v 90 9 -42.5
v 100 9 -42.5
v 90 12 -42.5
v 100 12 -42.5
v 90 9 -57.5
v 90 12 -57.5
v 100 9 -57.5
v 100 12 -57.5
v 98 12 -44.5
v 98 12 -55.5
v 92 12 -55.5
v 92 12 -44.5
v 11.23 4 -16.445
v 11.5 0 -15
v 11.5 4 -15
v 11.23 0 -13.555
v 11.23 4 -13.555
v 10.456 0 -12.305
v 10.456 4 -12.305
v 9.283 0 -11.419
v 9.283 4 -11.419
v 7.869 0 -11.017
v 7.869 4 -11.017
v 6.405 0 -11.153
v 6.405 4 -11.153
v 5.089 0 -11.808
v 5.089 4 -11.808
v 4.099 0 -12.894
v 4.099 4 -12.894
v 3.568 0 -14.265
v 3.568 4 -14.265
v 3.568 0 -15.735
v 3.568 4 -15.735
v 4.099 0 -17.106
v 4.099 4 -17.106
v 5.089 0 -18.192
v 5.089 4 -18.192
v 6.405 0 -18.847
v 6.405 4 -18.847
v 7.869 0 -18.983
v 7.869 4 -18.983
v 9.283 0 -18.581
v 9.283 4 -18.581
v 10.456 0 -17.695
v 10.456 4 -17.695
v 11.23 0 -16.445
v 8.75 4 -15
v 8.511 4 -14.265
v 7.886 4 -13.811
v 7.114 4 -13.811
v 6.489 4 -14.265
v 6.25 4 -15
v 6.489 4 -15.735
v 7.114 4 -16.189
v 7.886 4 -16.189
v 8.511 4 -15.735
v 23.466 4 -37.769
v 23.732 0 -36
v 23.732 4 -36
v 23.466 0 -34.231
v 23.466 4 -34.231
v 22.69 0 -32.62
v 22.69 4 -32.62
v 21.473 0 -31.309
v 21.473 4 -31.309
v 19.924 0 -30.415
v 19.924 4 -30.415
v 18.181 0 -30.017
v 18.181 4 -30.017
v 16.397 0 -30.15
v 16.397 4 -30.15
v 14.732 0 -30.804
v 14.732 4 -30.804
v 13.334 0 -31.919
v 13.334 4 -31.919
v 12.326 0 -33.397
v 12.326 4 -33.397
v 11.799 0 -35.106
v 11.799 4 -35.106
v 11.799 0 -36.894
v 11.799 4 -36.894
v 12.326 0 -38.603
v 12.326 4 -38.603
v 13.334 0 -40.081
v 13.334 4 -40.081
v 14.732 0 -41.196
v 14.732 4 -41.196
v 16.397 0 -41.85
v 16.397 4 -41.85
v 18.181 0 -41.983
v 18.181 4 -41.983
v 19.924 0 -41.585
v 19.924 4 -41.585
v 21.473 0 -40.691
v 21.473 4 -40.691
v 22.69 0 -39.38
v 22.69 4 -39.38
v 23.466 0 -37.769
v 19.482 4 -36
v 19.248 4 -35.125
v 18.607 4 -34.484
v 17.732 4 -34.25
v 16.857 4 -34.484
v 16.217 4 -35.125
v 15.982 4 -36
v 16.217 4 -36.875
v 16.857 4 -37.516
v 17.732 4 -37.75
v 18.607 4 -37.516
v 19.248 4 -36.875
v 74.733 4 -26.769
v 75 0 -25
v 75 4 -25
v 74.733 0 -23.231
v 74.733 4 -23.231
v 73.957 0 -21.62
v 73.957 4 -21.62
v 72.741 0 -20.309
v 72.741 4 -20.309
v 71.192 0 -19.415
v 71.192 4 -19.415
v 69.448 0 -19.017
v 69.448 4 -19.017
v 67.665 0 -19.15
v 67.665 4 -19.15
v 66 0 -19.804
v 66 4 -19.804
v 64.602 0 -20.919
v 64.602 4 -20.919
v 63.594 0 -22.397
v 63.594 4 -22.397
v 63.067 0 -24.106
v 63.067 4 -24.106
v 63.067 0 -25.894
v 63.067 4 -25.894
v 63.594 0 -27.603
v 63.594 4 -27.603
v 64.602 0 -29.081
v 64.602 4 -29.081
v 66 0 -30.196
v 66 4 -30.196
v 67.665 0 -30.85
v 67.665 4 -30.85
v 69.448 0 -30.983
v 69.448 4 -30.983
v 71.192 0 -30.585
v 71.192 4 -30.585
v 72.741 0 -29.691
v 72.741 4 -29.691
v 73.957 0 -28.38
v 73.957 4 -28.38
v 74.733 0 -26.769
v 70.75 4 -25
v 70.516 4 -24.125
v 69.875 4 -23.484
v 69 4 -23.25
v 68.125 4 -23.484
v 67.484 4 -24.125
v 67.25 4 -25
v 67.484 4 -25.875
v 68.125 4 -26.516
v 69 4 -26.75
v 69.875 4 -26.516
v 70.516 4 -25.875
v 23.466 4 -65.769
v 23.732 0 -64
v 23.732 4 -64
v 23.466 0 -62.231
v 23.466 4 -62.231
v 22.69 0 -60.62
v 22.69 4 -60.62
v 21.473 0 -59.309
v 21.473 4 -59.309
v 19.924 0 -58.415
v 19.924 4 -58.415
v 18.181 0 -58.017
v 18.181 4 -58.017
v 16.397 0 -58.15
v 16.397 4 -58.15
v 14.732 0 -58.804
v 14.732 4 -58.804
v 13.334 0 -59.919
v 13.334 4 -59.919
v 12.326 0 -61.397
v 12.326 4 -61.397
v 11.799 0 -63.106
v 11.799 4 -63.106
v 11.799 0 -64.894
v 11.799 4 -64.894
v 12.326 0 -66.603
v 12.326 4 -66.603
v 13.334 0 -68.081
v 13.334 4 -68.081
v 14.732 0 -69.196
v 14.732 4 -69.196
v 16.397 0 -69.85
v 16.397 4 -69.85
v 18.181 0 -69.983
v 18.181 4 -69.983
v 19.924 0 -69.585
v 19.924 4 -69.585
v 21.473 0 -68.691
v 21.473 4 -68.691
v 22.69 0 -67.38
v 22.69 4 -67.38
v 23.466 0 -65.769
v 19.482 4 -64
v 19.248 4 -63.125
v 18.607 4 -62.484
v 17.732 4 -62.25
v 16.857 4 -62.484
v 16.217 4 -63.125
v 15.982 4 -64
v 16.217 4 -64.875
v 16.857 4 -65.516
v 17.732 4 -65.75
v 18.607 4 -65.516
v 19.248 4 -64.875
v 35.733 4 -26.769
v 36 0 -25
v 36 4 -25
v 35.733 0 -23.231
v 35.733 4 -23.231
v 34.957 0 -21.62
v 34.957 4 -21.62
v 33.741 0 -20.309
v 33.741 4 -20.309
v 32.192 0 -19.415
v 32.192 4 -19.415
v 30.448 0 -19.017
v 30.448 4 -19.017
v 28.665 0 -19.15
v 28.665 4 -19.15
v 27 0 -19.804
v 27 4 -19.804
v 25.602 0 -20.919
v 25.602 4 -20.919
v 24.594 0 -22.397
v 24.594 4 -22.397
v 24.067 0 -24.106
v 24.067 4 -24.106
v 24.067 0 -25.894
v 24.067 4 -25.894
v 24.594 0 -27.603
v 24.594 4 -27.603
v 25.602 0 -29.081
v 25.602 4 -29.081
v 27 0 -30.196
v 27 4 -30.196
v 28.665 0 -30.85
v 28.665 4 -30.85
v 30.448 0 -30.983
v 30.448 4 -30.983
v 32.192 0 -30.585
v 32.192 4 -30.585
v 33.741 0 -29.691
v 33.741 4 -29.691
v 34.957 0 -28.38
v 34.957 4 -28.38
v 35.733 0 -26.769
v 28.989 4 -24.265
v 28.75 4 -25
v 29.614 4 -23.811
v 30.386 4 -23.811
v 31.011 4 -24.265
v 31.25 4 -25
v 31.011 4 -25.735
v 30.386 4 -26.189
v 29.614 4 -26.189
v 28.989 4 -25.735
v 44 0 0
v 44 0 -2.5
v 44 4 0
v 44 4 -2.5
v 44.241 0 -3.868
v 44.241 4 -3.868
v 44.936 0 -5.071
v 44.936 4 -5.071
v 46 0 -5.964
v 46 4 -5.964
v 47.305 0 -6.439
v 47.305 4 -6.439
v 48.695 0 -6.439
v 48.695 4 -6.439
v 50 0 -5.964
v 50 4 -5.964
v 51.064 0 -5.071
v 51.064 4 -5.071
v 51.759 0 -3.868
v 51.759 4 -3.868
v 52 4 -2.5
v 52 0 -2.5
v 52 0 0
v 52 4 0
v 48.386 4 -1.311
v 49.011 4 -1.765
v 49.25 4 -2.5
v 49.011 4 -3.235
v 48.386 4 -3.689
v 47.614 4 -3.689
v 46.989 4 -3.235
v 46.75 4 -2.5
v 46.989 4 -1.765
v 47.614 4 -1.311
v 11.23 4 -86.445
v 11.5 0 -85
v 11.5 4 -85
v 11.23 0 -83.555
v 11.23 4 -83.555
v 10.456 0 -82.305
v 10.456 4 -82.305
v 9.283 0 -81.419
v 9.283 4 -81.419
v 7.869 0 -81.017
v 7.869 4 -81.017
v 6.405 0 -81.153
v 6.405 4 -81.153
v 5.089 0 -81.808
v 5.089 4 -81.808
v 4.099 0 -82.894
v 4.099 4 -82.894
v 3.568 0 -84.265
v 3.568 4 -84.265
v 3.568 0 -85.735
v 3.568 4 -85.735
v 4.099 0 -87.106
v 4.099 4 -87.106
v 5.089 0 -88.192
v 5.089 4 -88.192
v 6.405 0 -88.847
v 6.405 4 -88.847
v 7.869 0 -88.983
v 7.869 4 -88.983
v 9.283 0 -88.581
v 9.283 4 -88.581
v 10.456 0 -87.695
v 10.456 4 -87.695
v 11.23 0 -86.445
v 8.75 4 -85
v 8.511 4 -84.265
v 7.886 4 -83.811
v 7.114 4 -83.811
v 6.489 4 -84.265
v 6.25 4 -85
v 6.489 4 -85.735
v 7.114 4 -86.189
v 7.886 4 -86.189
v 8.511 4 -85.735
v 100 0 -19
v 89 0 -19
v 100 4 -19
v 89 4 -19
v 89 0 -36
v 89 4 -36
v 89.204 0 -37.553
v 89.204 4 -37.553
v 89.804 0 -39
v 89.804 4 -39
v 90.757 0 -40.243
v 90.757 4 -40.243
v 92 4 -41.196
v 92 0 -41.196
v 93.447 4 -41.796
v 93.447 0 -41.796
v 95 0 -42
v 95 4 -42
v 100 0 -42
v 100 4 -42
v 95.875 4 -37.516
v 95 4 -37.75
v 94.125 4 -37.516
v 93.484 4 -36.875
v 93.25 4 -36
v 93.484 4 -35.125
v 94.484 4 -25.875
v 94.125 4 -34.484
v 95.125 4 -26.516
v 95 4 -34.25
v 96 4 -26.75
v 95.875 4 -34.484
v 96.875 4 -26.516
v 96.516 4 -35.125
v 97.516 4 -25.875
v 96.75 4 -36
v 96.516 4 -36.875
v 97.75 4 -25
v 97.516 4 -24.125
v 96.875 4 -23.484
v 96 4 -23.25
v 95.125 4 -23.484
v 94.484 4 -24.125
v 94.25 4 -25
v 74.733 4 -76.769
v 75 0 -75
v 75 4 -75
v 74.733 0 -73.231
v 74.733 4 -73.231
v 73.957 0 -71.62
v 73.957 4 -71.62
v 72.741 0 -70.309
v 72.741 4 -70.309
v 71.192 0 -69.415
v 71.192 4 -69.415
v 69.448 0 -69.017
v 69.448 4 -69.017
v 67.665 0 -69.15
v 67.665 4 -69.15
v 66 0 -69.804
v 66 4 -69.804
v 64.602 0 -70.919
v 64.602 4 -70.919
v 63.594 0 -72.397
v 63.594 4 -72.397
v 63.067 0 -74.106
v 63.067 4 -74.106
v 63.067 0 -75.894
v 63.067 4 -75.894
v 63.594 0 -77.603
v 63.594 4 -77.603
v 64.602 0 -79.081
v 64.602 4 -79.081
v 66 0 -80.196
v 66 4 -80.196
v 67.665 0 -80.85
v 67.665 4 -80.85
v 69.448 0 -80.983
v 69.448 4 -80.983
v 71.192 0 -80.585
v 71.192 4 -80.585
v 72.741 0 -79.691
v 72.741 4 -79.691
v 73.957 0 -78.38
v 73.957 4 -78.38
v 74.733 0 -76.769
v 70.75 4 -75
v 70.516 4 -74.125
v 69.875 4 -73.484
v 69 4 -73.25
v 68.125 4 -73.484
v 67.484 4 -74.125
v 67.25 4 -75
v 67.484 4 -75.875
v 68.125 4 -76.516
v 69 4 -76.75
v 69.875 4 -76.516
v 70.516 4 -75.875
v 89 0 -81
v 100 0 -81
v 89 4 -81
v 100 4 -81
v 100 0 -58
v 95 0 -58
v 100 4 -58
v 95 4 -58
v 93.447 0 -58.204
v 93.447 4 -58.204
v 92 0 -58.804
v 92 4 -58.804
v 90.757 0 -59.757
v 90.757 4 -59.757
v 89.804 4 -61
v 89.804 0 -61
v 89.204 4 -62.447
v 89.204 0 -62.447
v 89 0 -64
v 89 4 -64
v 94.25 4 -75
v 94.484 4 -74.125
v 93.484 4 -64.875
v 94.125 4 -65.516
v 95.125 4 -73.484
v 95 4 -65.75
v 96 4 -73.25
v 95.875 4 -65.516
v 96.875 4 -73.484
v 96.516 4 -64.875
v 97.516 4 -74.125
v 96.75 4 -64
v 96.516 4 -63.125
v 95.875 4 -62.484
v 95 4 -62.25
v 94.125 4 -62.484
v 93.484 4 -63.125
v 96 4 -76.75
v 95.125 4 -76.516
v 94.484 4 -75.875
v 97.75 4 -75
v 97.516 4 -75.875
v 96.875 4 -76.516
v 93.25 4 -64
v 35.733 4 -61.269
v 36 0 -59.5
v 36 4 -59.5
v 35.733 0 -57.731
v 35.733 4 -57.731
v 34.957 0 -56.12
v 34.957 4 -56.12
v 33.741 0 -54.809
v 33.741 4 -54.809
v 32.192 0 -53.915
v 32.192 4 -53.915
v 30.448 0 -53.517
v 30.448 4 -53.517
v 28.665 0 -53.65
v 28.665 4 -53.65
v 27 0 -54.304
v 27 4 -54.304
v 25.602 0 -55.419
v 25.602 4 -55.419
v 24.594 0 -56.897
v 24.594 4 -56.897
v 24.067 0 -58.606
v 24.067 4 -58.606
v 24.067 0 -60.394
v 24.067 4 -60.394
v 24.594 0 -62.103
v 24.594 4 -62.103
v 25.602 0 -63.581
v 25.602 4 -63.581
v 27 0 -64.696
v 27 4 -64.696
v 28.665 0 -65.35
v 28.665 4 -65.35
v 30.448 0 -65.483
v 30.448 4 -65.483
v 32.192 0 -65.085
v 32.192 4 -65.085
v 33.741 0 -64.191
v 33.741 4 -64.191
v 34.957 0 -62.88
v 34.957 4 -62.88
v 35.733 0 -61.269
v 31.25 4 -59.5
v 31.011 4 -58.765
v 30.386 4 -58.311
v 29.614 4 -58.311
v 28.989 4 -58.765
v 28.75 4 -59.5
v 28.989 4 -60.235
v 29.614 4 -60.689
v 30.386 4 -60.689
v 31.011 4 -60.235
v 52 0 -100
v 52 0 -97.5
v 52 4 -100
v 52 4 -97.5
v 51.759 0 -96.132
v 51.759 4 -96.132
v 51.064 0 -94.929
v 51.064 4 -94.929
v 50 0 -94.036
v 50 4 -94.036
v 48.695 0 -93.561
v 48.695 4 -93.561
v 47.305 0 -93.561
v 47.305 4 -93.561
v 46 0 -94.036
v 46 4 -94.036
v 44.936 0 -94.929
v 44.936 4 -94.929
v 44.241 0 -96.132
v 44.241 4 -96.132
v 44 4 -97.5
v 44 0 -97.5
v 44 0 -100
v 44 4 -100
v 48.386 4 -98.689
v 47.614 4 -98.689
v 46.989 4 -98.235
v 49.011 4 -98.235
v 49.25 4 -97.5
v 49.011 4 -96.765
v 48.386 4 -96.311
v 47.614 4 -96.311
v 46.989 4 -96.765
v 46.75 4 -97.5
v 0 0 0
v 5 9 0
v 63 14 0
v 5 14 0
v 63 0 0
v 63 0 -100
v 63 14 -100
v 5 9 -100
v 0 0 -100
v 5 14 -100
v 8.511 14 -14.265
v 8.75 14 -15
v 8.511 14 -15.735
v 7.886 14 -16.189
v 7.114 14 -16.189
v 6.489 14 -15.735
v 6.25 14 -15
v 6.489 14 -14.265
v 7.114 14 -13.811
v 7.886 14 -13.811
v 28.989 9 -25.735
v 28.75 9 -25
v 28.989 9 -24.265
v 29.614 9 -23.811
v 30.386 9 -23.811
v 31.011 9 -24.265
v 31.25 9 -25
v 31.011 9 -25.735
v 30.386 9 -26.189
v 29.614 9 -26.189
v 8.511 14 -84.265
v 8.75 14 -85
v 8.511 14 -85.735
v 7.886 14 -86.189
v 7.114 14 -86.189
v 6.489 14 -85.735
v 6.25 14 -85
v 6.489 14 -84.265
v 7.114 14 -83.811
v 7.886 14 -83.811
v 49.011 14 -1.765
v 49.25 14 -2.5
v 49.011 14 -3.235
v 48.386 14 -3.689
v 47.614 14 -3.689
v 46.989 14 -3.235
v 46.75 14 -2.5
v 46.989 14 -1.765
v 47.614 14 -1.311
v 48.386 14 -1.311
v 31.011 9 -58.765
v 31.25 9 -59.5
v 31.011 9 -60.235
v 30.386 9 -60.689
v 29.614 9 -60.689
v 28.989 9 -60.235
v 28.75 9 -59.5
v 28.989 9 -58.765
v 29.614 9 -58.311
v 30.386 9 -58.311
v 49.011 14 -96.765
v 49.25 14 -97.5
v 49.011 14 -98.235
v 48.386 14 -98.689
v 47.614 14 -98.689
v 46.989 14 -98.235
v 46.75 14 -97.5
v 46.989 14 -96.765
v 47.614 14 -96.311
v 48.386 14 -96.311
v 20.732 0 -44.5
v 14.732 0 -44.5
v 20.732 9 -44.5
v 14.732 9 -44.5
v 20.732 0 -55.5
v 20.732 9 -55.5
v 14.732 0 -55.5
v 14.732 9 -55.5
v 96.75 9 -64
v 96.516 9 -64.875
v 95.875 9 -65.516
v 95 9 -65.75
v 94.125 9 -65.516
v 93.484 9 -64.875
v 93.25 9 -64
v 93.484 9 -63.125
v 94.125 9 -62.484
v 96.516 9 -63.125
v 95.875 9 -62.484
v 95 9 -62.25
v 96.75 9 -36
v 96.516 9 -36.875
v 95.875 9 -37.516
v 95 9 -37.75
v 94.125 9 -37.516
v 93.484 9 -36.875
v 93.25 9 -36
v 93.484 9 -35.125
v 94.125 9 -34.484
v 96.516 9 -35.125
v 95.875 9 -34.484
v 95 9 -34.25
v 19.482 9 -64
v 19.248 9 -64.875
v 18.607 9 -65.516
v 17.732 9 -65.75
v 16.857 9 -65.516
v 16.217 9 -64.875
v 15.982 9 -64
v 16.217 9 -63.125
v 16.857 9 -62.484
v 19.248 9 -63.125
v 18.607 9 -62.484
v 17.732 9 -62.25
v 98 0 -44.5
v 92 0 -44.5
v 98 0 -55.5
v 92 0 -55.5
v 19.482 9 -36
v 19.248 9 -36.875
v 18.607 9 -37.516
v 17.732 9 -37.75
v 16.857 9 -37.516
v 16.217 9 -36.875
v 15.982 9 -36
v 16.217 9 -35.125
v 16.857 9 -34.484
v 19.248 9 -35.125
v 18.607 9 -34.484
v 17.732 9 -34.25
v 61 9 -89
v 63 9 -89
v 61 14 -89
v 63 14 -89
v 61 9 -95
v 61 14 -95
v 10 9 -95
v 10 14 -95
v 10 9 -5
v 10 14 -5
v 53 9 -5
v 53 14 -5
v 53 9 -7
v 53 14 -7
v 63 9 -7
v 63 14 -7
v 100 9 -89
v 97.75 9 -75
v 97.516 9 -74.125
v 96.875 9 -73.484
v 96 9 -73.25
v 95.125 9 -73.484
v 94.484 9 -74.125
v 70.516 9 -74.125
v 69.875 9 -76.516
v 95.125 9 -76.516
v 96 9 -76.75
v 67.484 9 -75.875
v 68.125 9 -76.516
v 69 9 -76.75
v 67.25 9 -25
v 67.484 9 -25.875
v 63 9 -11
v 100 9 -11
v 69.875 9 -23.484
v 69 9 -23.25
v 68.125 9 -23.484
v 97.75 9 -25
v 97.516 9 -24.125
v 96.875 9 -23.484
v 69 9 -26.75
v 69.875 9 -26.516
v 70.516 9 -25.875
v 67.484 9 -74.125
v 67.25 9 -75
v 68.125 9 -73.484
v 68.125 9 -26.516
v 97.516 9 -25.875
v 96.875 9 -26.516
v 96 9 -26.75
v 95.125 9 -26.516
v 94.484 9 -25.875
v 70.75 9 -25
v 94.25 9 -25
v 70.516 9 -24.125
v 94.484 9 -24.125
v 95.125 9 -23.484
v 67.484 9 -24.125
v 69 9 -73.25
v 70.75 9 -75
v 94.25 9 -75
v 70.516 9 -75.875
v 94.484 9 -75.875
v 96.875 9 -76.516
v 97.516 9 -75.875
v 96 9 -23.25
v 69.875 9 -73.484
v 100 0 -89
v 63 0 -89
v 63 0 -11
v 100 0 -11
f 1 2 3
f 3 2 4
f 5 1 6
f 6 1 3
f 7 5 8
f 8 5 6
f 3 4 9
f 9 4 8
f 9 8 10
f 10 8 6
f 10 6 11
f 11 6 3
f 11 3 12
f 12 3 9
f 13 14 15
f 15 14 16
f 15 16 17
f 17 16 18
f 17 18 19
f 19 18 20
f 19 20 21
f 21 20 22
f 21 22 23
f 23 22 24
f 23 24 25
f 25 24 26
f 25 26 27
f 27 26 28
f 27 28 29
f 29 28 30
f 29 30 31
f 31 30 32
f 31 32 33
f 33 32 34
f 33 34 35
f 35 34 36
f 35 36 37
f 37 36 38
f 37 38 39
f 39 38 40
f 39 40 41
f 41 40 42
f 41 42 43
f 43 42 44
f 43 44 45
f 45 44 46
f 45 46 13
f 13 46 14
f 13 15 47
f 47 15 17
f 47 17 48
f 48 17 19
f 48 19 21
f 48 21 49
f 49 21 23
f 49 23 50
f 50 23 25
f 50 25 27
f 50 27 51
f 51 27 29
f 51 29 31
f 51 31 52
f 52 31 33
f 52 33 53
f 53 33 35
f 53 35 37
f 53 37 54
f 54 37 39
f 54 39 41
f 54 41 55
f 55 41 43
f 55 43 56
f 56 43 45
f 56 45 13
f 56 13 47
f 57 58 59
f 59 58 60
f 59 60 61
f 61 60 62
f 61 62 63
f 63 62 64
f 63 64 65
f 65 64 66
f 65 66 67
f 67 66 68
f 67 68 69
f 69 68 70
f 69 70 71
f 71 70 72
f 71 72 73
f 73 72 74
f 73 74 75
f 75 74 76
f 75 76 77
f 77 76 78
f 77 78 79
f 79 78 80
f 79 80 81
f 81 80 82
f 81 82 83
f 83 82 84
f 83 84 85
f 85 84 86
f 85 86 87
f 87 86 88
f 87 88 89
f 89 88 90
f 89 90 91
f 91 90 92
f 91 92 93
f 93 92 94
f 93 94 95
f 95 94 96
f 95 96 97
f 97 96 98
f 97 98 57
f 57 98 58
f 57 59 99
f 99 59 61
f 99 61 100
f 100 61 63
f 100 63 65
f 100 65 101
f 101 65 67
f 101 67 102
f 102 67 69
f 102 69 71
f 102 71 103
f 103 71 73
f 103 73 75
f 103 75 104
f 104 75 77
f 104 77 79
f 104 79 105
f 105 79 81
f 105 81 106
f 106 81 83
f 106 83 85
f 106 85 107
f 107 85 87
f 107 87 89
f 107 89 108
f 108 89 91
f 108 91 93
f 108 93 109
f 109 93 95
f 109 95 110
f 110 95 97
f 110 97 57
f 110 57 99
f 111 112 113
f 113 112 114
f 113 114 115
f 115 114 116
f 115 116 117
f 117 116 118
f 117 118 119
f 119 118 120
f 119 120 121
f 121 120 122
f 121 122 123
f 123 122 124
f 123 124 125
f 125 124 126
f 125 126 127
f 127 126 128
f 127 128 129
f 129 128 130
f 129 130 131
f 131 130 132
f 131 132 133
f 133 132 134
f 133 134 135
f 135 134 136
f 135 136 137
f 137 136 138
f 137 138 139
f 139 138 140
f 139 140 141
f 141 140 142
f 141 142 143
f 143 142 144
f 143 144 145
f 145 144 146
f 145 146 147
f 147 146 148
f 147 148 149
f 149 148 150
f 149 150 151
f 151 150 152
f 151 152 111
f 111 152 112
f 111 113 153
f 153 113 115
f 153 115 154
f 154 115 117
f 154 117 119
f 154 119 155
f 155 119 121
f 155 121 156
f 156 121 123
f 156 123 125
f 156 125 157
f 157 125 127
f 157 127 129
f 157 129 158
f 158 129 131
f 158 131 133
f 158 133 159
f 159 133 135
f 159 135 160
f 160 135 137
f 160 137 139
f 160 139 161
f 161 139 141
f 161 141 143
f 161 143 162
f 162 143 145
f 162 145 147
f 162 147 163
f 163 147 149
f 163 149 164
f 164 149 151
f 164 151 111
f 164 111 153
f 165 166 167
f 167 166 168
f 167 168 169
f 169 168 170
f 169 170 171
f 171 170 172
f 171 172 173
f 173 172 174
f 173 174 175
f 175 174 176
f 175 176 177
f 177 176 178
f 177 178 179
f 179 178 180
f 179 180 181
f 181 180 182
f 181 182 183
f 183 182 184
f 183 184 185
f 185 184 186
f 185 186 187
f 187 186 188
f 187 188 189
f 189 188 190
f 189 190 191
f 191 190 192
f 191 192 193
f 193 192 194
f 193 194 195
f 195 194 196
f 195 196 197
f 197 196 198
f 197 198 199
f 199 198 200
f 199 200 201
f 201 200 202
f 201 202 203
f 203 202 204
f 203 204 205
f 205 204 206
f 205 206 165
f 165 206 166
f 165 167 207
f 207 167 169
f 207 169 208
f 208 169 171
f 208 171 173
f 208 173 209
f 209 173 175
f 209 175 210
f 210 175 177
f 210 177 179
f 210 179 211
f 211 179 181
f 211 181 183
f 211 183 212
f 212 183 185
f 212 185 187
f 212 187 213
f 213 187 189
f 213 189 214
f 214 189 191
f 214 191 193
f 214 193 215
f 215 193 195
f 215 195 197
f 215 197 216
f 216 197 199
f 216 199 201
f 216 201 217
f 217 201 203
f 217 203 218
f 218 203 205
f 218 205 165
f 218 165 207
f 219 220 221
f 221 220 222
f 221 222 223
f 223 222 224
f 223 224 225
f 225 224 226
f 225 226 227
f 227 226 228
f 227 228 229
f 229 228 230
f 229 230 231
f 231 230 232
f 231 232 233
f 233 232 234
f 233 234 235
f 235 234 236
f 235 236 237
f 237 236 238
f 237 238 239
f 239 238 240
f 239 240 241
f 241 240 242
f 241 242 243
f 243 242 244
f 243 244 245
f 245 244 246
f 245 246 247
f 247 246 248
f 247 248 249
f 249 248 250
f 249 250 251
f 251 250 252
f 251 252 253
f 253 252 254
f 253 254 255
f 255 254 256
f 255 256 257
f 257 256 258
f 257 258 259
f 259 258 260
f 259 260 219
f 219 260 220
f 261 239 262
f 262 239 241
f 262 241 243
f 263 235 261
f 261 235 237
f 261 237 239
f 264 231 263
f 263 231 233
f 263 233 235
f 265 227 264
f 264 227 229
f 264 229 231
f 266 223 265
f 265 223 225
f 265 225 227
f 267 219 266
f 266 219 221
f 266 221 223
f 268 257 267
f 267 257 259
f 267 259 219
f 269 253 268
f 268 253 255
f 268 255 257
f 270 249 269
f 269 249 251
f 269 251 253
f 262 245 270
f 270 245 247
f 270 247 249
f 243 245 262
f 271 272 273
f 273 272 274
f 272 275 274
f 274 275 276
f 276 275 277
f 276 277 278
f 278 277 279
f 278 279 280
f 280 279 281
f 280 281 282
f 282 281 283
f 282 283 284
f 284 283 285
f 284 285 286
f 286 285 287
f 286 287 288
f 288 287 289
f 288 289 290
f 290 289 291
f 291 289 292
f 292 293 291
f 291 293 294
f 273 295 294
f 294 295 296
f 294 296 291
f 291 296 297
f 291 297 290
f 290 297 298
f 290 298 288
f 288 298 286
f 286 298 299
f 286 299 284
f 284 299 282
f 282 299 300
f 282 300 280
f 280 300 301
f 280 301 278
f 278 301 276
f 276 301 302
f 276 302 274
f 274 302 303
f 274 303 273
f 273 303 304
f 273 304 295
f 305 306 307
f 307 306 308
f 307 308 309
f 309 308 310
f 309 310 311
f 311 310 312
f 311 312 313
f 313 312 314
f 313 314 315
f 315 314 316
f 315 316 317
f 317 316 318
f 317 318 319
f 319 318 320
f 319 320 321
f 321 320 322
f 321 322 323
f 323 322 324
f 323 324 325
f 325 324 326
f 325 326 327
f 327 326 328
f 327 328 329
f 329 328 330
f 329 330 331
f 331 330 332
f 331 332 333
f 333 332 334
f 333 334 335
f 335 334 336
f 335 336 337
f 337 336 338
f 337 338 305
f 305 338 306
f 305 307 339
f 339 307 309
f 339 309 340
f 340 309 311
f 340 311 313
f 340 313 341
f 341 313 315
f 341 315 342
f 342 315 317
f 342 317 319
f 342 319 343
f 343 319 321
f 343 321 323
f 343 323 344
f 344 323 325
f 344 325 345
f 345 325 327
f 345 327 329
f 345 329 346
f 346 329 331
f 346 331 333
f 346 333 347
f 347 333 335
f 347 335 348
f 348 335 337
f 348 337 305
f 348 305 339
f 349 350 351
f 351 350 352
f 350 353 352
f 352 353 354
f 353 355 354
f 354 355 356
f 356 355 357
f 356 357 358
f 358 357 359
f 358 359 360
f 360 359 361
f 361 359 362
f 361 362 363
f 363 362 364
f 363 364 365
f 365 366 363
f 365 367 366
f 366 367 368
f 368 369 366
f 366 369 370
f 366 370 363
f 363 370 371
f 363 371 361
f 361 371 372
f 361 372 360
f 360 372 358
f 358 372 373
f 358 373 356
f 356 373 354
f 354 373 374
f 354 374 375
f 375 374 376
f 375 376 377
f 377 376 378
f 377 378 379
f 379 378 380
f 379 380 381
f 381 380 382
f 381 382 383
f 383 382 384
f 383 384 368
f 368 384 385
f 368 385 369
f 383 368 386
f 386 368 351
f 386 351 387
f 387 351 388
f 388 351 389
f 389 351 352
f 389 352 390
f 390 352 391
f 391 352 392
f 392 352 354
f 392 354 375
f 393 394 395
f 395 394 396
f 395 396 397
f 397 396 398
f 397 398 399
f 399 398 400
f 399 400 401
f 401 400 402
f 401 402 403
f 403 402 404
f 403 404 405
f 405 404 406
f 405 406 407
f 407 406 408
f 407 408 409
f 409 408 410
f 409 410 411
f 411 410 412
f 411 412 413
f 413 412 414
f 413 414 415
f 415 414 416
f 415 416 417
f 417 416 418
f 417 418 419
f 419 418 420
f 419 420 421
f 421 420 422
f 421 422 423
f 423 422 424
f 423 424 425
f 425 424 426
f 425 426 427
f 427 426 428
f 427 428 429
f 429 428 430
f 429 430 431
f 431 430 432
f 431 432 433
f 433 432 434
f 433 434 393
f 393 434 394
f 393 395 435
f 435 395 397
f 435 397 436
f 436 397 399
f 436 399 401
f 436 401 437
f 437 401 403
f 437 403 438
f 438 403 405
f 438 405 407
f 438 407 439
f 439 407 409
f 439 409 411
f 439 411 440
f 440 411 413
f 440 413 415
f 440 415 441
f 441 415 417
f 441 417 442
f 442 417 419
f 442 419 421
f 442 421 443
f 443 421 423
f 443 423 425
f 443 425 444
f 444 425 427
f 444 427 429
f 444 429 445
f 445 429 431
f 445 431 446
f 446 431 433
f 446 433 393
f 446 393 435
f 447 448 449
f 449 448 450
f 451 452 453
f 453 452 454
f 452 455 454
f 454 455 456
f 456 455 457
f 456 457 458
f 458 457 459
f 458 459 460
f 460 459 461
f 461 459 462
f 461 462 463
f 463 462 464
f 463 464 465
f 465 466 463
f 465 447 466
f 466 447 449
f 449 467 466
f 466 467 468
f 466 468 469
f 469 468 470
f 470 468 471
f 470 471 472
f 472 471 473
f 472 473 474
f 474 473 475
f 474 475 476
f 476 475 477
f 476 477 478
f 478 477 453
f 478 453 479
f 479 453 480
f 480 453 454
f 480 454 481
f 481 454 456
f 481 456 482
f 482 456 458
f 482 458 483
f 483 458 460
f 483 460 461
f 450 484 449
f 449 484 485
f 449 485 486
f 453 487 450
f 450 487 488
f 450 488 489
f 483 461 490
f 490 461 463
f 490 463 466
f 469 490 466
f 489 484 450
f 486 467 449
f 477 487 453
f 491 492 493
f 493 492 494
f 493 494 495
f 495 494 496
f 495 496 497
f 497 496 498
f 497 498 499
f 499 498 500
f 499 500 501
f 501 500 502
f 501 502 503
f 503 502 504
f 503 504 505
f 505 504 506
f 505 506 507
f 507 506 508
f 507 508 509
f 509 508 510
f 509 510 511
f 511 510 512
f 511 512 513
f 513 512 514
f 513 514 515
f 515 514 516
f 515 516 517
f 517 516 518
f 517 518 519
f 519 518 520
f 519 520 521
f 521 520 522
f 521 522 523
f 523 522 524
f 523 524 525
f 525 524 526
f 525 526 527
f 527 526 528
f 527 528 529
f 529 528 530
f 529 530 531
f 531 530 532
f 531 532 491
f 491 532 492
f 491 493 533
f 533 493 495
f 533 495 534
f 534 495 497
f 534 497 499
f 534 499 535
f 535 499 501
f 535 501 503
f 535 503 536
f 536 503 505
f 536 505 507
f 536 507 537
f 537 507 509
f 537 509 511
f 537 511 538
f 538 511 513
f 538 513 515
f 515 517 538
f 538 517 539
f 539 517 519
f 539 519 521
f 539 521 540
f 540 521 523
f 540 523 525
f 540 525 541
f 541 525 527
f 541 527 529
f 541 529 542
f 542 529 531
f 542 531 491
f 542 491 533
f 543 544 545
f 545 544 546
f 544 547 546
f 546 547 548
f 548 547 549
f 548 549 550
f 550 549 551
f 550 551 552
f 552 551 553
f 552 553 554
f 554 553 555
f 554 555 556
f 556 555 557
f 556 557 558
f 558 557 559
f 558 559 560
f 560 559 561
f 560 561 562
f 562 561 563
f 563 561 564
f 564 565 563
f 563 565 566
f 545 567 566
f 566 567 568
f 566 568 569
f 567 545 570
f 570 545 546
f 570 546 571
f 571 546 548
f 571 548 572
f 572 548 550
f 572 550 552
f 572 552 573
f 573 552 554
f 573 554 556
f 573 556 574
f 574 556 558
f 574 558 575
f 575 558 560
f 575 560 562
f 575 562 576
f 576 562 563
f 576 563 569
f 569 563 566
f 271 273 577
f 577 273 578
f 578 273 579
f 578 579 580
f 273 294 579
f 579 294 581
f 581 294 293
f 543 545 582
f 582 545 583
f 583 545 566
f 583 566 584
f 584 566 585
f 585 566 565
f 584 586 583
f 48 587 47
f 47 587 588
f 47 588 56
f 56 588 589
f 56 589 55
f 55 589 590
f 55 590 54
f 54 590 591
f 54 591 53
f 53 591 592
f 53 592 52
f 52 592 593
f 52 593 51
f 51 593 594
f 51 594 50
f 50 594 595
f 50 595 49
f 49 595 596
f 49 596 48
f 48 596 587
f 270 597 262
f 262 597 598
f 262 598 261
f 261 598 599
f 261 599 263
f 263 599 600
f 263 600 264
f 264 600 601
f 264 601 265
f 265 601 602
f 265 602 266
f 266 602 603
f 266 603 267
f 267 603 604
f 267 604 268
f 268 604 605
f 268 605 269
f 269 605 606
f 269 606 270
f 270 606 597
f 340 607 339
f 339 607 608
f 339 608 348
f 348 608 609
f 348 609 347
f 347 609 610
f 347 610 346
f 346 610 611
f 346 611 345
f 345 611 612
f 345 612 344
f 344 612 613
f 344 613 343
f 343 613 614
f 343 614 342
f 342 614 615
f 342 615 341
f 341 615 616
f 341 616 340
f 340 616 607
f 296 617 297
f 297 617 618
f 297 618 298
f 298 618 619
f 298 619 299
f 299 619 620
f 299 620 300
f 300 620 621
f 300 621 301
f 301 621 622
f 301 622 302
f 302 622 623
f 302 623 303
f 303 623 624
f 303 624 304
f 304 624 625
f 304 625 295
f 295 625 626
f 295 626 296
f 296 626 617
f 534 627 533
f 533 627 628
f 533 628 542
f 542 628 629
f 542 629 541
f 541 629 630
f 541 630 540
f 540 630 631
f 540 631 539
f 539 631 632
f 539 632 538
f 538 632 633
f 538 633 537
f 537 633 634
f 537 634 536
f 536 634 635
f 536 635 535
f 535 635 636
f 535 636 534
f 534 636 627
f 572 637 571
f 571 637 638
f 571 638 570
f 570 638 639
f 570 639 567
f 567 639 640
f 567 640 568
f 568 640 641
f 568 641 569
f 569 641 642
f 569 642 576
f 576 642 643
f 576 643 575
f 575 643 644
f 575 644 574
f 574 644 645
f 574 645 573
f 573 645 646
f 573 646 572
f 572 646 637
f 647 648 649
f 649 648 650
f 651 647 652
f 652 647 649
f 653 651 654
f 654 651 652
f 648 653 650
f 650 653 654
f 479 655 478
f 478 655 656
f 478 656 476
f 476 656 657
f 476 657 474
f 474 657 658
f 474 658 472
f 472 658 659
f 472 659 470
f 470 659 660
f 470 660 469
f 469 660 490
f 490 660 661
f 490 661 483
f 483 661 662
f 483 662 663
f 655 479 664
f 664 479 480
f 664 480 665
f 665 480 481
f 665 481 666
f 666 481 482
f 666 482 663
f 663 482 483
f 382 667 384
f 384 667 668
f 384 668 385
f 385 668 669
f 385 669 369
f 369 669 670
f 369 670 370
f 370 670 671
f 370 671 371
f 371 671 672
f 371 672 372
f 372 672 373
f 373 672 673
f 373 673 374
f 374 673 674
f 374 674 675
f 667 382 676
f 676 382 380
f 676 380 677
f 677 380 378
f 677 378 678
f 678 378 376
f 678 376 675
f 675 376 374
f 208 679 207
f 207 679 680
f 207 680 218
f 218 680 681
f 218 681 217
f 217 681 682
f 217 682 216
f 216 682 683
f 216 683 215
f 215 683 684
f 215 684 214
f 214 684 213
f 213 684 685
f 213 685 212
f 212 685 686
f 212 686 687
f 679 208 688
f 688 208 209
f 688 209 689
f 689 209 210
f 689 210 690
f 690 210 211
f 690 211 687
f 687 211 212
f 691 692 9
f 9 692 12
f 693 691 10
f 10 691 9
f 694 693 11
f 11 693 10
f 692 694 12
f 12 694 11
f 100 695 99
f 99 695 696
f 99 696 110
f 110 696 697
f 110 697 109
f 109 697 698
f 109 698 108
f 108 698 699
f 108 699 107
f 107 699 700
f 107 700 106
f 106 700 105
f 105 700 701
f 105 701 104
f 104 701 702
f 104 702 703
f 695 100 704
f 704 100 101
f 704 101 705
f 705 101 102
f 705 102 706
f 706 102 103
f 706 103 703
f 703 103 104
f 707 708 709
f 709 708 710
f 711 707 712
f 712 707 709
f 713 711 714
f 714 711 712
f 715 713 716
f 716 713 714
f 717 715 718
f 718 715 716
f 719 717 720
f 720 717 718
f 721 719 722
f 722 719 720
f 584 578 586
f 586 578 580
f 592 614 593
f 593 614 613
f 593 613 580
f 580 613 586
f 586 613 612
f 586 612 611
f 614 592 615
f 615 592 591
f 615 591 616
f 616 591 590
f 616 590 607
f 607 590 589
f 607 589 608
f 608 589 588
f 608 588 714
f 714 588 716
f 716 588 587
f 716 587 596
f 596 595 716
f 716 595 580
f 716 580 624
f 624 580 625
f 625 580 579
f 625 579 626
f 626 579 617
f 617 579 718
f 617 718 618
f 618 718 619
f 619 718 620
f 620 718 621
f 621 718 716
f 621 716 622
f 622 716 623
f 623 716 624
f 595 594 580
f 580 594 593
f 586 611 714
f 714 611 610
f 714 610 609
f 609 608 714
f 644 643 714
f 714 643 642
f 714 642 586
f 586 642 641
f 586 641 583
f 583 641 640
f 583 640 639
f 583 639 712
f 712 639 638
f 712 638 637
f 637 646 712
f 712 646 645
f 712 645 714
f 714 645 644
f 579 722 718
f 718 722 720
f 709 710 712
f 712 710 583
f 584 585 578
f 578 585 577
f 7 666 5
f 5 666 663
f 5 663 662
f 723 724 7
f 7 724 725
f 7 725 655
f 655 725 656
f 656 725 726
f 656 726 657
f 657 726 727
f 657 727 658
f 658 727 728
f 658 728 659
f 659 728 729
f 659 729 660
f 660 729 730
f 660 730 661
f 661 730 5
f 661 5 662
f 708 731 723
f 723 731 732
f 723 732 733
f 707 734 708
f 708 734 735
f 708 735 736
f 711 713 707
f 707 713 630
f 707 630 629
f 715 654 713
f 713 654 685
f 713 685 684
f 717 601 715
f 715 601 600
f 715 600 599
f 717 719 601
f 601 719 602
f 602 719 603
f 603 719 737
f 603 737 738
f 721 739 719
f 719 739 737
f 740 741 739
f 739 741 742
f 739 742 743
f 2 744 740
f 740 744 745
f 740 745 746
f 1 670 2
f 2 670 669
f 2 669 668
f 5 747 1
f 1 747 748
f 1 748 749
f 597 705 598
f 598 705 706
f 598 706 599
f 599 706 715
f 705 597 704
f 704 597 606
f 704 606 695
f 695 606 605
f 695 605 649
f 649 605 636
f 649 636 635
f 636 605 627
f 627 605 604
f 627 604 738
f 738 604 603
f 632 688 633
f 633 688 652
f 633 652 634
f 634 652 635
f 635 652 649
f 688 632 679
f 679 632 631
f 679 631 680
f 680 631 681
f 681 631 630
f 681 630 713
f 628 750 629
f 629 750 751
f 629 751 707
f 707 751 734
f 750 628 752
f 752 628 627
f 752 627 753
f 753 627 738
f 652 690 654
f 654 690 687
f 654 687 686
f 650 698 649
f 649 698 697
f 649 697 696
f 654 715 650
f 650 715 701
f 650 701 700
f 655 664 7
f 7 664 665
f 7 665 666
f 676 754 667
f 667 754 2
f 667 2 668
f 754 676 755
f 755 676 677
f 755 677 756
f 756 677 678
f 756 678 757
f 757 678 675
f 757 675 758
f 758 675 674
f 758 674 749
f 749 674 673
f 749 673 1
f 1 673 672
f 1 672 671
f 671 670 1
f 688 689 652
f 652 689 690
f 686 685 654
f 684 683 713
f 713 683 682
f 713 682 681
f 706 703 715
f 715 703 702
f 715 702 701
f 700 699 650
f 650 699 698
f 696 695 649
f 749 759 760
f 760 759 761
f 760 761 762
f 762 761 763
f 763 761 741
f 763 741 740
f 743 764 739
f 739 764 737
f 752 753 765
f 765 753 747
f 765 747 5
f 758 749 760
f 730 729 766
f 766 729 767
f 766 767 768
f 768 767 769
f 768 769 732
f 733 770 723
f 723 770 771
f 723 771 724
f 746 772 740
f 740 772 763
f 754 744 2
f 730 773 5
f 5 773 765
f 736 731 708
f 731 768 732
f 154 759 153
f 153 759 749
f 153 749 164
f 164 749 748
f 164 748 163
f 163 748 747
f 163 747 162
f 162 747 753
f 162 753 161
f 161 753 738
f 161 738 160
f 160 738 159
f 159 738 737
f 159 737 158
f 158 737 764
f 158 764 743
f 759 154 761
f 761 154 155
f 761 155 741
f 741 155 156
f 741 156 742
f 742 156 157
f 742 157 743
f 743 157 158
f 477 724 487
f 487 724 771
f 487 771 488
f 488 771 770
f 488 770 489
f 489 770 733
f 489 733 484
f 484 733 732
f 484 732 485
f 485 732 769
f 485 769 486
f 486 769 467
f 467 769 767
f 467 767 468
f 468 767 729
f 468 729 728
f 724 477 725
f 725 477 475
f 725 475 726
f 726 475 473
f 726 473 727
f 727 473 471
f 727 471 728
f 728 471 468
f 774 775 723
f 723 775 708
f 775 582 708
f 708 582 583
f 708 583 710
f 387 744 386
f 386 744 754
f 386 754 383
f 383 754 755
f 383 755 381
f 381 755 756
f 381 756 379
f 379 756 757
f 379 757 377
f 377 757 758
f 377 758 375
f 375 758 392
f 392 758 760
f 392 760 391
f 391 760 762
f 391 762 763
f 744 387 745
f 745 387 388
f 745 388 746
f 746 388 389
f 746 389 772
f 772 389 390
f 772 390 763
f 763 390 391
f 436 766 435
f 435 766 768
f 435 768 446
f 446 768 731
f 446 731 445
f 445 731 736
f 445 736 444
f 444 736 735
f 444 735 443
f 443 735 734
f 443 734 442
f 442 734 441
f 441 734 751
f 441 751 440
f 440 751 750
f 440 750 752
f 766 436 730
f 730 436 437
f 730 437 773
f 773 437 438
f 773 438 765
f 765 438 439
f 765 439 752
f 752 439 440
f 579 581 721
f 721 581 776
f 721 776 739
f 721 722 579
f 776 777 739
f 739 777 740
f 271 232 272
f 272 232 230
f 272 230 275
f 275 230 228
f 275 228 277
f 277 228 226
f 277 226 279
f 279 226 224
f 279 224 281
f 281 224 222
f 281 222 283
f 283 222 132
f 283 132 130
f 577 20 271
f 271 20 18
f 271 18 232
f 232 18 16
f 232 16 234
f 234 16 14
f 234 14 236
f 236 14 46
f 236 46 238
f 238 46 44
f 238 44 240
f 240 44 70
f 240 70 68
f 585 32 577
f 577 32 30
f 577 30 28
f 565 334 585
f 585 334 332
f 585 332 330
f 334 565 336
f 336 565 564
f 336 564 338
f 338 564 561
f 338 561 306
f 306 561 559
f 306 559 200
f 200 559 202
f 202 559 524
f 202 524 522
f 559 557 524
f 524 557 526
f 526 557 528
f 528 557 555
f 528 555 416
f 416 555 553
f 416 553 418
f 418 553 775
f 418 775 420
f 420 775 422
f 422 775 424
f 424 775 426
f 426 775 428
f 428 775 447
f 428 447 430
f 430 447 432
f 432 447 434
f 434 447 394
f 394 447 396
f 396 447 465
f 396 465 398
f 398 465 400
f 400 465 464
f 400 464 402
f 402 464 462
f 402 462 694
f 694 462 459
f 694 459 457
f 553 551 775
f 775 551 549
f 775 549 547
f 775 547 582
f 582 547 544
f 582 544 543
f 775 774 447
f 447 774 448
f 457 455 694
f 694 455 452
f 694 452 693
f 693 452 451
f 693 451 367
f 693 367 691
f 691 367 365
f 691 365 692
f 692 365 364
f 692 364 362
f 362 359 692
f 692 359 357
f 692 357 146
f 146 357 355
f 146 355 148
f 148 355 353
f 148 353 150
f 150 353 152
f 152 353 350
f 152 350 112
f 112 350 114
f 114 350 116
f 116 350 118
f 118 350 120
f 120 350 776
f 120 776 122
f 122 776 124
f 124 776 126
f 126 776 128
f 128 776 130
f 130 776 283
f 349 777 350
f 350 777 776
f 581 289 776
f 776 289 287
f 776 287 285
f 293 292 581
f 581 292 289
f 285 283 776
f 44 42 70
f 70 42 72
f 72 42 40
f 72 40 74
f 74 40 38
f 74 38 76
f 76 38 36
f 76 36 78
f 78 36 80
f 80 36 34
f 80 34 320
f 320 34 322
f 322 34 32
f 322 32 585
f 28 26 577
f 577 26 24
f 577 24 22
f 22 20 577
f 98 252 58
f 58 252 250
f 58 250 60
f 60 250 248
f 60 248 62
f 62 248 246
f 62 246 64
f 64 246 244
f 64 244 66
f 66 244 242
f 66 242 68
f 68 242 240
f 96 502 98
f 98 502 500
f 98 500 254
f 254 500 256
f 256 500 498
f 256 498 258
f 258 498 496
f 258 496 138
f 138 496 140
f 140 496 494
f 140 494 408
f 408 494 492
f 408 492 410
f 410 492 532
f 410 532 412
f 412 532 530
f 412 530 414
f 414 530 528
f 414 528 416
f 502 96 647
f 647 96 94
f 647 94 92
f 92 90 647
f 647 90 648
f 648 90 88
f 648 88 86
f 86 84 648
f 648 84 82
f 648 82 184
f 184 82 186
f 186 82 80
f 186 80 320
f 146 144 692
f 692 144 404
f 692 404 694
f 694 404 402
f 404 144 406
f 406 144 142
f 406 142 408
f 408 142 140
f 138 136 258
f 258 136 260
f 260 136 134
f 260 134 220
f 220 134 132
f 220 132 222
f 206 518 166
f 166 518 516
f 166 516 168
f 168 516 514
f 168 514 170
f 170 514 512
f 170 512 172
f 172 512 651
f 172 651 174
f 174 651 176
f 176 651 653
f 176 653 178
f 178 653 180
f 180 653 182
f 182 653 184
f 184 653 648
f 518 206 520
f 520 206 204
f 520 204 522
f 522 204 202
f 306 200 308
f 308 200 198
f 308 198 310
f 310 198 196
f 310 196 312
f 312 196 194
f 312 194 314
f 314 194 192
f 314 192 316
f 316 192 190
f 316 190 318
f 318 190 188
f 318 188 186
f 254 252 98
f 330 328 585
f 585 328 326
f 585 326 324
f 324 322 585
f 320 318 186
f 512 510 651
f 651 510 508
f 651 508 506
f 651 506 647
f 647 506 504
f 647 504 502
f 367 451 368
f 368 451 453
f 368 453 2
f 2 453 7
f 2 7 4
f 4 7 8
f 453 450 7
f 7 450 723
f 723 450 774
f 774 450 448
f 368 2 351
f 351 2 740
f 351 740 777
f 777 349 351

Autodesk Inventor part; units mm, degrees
ref_plane "YZ Plane" through (0, 0, 0) normal (1, 0, 0) x (0, 1, 0)
ref_plane "XZ Plane" through (0, 0, 0) normal (0, 1, 0) x (-1, 0, 0)
ref_plane "XY Plane" through (0, 0, 0) normal (0, 0, 1) x (1, 0, 0)
sketch "Sketch1" plane through (0, 0, 0) normal (0, 1, 0) x (-1, 0, 0)
  line L0 (0, 0) -> (-100, 0)
  line L1 (-100, 0) -> (-100, -100)
  line L2 (-100, -100) -> (0, -100)
  line L3 (0, -100) -> (0, 0)
  dimension "d0" = 100
  dimension "d1" = 100
extrude "base" add sketch "Sketch1" along normal blind 9
sketch "Sketch2" plane through (0, 9, 0) normal (0, 1, 0) x (1, 0, 0)
  circle A0 centre (96, 25) radius 1.75
  line L0 (100, 0) -> (100, 100) projected
  circle A1 centre (69, 25) radius 1.75
  line L1 (0, 0) -> (100, 0) projected
  line L2 (100, 50) -> (95, 50)
  circle A2 centre (96, 75) radius 1.75
  circle A3 centre (69, 75) radius 1.75
  line L3 (63, 0) -> (63, 100)
  line L4 (100, 100) -> (0, 100) projected
  line L5 (100, 25) -> (100, 11)
  line L6 (100, 11) -> (63, 11)
  line L7 (100, 89) -> (63, 89)
  circle A4 centre (82, 25) radius 17.5
  point P0 (63, 89)
  dimension "d6" = 4
  dimension "d7" = 3.5
  dimension "d9" = 3.5
  dimension "d10" = 27
  dimension "d11" = 25
  dimension "d13" = 37
  dimension "d14" = 14
  dimension "d17" = 35
extrude "wheel space" cut sketch "Sketch2" against normal through all contours A0 | L1 L3 L6 A4 L0 | A4 L6 | L3 L4 L0 L7 | A1 | A2 | A3 picked at (84.4264, 10.3619)
sketch "Sketch3" plane through (0, 0, 0) normal (0, 0, 1) x (1, 0, 0)
  line L0 (63, 9) -> (0, 9) projected
  line L1 (0, 0) -> (0, 9) projected
  line L2 (63, 0) -> (0, 0) projected
  line L3 (5, 9) -> (0, 0)
  dimension "d18" = 5
extrude "ramp" cut sketch "Sketch3" against normal through all
sketch "Sketch4" plane through (0, 9, 0) normal (0, 1, 0) x (1, 0, 0)
  circle A0 centre (69, 75) radius 1.75 projected
  circle A1 centre (96, 25) radius 1.75 projected
  circle A2 centre (96, 75) radius 1.75 projected
  circle A3 centre (69, 25) radius 1.75 projected
  line L0 (5, 100) -> (5, 0) projected
  line L1 (5, 0) -> (63, 0) projected
  line L2 (63, 0) -> (63, 11) projected
  line L3 (63, 11) -> (100, 11) projected
  line L4 (100, 11) -> (100, 89) projected
  line L5 (100, 89) -> (63, 89) projected
  line L6 (63, 89) -> (63, 100) projected
  line L7 (63, 100) -> (5, 100) projected
  line L8 (63, 100) -> (63, 89) projected
  line L9 (61, 95) -> (10, 95)
  line L10 (10, 95) -> (10, 5)
  line L11 (10, 5) -> (63, 5)
  line L12 (63, 11) -> (63, 0) projected
  line L13 (63, 89) -> (61, 89)
  line L14 (61, 89) -> (61, 95)
  line L15 (63, 5) -> (53, 5)
  line L16 (53, 5) -> (53, 7)
  line L17 (53, 7) -> (63, 7)
  line L18 (63, 7) -> (63, 5)
  point P0 (0, 0)
  point P1 (63, 95)
  dimension "d21" = 5
  dimension "d22" = 5
  dimension "d23" = 5
  dimension "d64" = 2
  dimension "d72" = 10
  dimension "d73" = 2
extrude "walls" add sketch "Sketch4" along normal blind 5 contours L7 L6 L13 L14 L9 L10 L11 L2 L1 L0 | L11 L16 L17 L2
sketch "Sketch5" plane through (0, 9, 0) normal (0, 1, 0) x (1, 0, 0)
  line L0 (22.7322, 84.5) -> (12.7322, 84.5)
  line L1 (12.7322, 84.5) -> (12.7322, 44.5)
  line L2 (12.7322, 44.5) -> (22.7322, 44.5)
  line L3 (22.7322, 44.5) -> (22.7322, 84.5)
  line L4 (14.7322, 44.5) -> (20.7322, 44.5)
  line L5 (20.7322, 44.5) -> (20.7322, 55.5)
  line L6 (20.7322, 55.5) -> (14.7322, 55.5)
  line L7 (14.7322, 55.5) -> (14.7322, 44.5)
  line L8 (14.7322, 44.5) -> (20.7322, 55.5) construction
  line L9 (20.7322, 44.5) -> (14.7322, 55.5) construction
  line L10 (10, 5) -> (10, 95) projected
  circle A0 centre (17.7322, 64) radius 1.75
  line L11 (100, 84.5) -> (90, 84.5)
  line L12 (90, 84.5) -> (90, 44.5)
  line L13 (90, 44.5) -> (100, 44.5)
  line L14 (100, 44.5) -> (100, 84.5)
  line L15 (92, 44.5) -> (98, 44.5)
  line L16 (98, 44.5) -> (98, 55.5)
  line L17 (98, 55.5) -> (92, 55.5)
  line L18 (92, 55.5) -> (92, 44.5)
  line L19 (92, 44.5) -> (98, 55.5) construction
  line L20 (98, 44.5) -> (92, 55.5) construction
  circle A1 centre (95, 64) radius 1.75
  circle A2 centre (96, 75) radius 1.75 projected
  line L21 (100, 11) -> (100, 89) projected
  circle A3 centre (95, 36) radius 1.75
  circle A4 centre (17.7322, 36) radius 1.75
  line L22 (100, 57.5) -> (90, 57.5)
  line L23 (90, 57.5) -> (90, 42.5)
  line L24 (90, 42.5) -> (100, 42.5)
  line L25 (100, 42.5) -> (100, 57.5)
  line L26 (100, 57.5) -> (90, 42.5) construction
  line L27 (90, 57.5) -> (100, 42.5) construction
  point P0 (0, 0)
  point P1 (17.7322, 50)
  point P2 (10, 50)
  point P3 (17.7322, 50)
  point P4 (95, 50)
  point P5 (95, 50)
  point P6 (95, 50)
  point P7 (17.7322, 50)
  point P8 (92, 44.5)
  point P9 (98, 44.5)
  point P10 (95, 84.5)
  dimension "d26" = 10
  dimension "d27" = 40
  dimension "d28" = 5.5
  dimension "d29" = 6
  dimension "d30" = 11
  dimension "d31" = 3.5
  dimension "d32" = 14
  dimension "d33" = 10
  dimension "d34" = 40
  dimension "d35" = 5.5
  dimension "d36" = 6
  dimension "d37" = 11
  dimension "d38" = 3.5
  dimension "d39" = 14
  dimension "d60" = 3.5
  dimension "d61" = 14
  dimension "d62" = 3.5
  dimension "d63" = 14
  dimension "d65" = 10
  dimension "d66" = 15
extrude "ir sensor" cut sketch "Sketch5" against normal through all contours L2 L7 L6 L5 | A0 | L13 L18 L17 L16 | A1 | A3 | A4
sketch "Sketch8" plane through (0, 14, 0) normal (0, 1, 0) x (1, 0, 0)
  line L0 (61, 89) -> (63, 89) projected
  line L1 (63, 89) -> (63, 100) projected
  line L2 (63, 100) -> (5, 100) projected
  line L3 (5, 100) -> (5, 0) projected
  line L4 (5, 0) -> (63, 0) projected
  line L5 (63, 0) -> (63, 7) projected
  line L6 (63, 7) -> (53, 7) projected
  line L7 (53, 7) -> (53, 5) projected
  line L8 (53, 5) -> (10, 5) projected
  line L9 (10, 5) -> (10, 95) projected
  line L10 (10, 95) -> (61, 95) projected
  line L11 (61, 95) -> (61, 89) projected
  circle A0 centre (7.5, 85) radius 1.25
  circle A1 centre (7.5, 15) radius 1.25
  circle A2 centre (48, 2.5) radius 1.25
  circle A3 centre (48, 97.5) radius 1.25
  point P0 (0, 0)
  dimension "d82" = 2.5
  dimension "d84" = 2.5
  dimension "d85" = 2.5
  dimension "d87" = 2.5
  dimension "d88" = 15
  dimension "d89" = 15
  dimension "d90" = 15
  dimension "d91" = 2.5
  dimension "d92" = 2.5
  dimension "d93" = 2.5
sketch "Sketch6" plane through (0, 9, 0) normal (0, 1, 0) x (1, 0, 0)
  line L0 (20.7322, 44.5) -> (14.7322, 44.5) projected
  circle A0 centre (17.7322, 64) radius 1.75 projected
  line L1 (53, 5) -> (10, 5) projected
  line L2 (10, 95) -> (61, 95) projected
  circle A1 centre (69, 25) radius 1.75 projected
  circle A2 centre (96, 25) radius 1.75 projected
  circle A3 centre (69, 25) radius 1.75 projected
  circle A4 centre (96, 25) radius 1.75 projected
  line L3 (69, 25) -> (96, 25)
  circle A5 centre (30, 25) radius 1.25
  line L4 (10, 5) -> (10, 95) projected
  circle A6 centre (30, 59.5) radius 1.25
  circle A7 centre (48, 97.5) radius 1.25 projected
  circle A8 centre (48, 2.5) radius 1.25 projected
  circle A9 centre (7.5, 85) radius 1.25 projected
  circle A10 centre (7.5, 15) radius 1.25 projected
  point P0 (0, 0)
  point P1 (63, 5)
  point P2 (63, 95)
  dimension "d75" = 2.5
  dimension "d76" = 20
  dimension "d77" = 20
  dimension "d79" = 2.5
  dimension "d80" = 34.5
extrude "mount holes" cut sketch "Sketch6" against normal through all both and the other way through all contours A5 | A6 | A7 | A8 | A9 | A10
sketch "Sketch7" plane through (0, 0, 0) normal (0, -1, 0) x (1, 0, 0)
  line L0 (92, -44.5) -> (98, -44.5) projected
  line L1 (98, -44.5) -> (98, -55.5) projected
  line L2 (98, -55.5) -> (92, -55.5) projected
  line L3 (92, -55.5) -> (92, -44.5) projected
  circle A0 centre (17.7322, -64) radius 1.75 projected
  circle A1 centre (95, -64) radius 1.75 projected
  line L4 (20.7322, -44.5) -> (20.7322, -55.5) projected
  line L5 (20.7322, -55.5) -> (14.7322, -55.5) projected
  line L6 (14.7322, -55.5) -> (14.7322, -44.5) projected
  line L7 (14.7322, -44.5) -> (20.7322, -44.5) projected
  circle A2 centre (69, -75) radius 1.75 projected
  circle A3 centre (96, -25) radius 1.75 projected
  circle A4 centre (96, -75) radius 1.75 projected
  circle A5 centre (69, -25) radius 1.75 projected
  line L8 (63, -100) -> (63, -89) projected
  line L9 (63, -89) -> (100, -89) projected
  line L10 (100, -11) -> (100, -89) projected
  line L11 (100, -11) -> (63, -11) projected
  line L12 (63, -11) -> (63, 0) projected
  line L13 (0, 0) -> (63, 0) projected
  line L14 (0, -100) -> (0, 0) projected
  line L15 (63, -100) -> (0, -100) projected
  circle A6 centre (69, -75) radius 6
  circle A7 centre (69, -25) radius 1.75 projected
  circle A8 centre (69, -25) radius 6
  circle A9 centre (96, -25) radius 1.75 projected
  circle A10 centre (17.7322, -64) radius 6
  circle A11 centre (95, -36) radius 1.75 projected
  arc A12 (89, -36) -> (95, -42) centre (95, -36) ccw
  line L16 (98, -31) -> (98.3166, -31)
  line L17 (100, -11) -> (100, -89) projected
  line L18 (96, -19) -> (100, -19)
  line L19 (100, -50) -> (98.3161, -50)
  line L20 (95, -42) -> (100, -42)
  circle A13 centre (17.7322, -36) radius 1.75 projected
  circle A14 centre (17.7322, -36) radius 6
  line L21 (92, -19) -> (96, -19)
  line L22 (89, -36) -> (89, -19)
  line L23 (89, -19) -> (92, -19)
  circle A15 centre (96, -75) radius 1.75
  circle A16 centre (96, -75) radius 1.75
  circle A17 centre (95, -64) radius 1.75
  arc A18 (95, -58) -> (89, -64) centre (95, -64) ccw
  line L24 (98, -69) -> (98.3166, -69)
  line L25 (96, -81) -> (100, -81)
  line L26 (95, -58) -> (100, -58)
  line L27 (92, -81) -> (96, -81)
  line L28 (89, -64) -> (89, -81)
  line L29 (89, -81) -> (92, -81)
  circle A19 centre (30, -59.5) radius 1.25 projected
  circle A20 centre (30, -25) radius 1.25 projected
  circle A21 centre (30, -59.5) radius 6
  circle A22 centre (30, -25) radius 6
  circle A23 centre (48, -97.5) radius 1.25 projected
  circle A24 centre (48, -2.5) radius 1.25 projected
  circle A25 centre (7.5, -15) radius 1.25 projected
  circle A26 centre (7.5, -85) radius 1.25 projected
  arc A27 (52, -97.5) -> (44, -97.5) centre (48, -97.5) ccw
  line L30 (44, -97.5) -> (44, -100)
  line L31 (63, -100) -> (5, -100) projected
  line L32 (52, -97.5) -> (52, -100)
  line L33 (44, -2.5) -> (44, 0)
  line L34 (0, 0) -> (63, 0) projected
  line L35 (52, -2.5) -> (52, 0)
  circle A28 centre (7.5, -15) radius 4
  circle A29 centre (7.5, -85) radius 4
  arc A30 (44, -2.5) -> (52, -2.5) centre (48, -2.5) ccw
  point P0 (100, -31)
  point P1 (96, -31)
  point P2 (93.1644, -30.2877)
  point P3 (96, -69)
  point P4 (93.1644, -69.7123)
  dimension "d69" = 12
  dimension "d71" = 12
  dimension "d94" = 8
  dimension "d96" = 8
  dimension "d97" = 8
extrude "mount holes flush" cut sketch "Sketch7" against normal blind 4 contours L15 L30 A27 L32 | L25 L27 L29 L28 A18 L26 L10 | L20 A12 L22 L23 L21 L18 L10 | L13 L35 A30 L33 | A6 | A8 | A10 | A14 | A20 | A21 | A22 | A28 | A29
extrude "Extrusion8" add sketch "Sketch5" along normal blind 3 contours L14 L13 L16 L17 L18 L12 L22 | L21 L24 L23 L13
properties part number "jeff"
